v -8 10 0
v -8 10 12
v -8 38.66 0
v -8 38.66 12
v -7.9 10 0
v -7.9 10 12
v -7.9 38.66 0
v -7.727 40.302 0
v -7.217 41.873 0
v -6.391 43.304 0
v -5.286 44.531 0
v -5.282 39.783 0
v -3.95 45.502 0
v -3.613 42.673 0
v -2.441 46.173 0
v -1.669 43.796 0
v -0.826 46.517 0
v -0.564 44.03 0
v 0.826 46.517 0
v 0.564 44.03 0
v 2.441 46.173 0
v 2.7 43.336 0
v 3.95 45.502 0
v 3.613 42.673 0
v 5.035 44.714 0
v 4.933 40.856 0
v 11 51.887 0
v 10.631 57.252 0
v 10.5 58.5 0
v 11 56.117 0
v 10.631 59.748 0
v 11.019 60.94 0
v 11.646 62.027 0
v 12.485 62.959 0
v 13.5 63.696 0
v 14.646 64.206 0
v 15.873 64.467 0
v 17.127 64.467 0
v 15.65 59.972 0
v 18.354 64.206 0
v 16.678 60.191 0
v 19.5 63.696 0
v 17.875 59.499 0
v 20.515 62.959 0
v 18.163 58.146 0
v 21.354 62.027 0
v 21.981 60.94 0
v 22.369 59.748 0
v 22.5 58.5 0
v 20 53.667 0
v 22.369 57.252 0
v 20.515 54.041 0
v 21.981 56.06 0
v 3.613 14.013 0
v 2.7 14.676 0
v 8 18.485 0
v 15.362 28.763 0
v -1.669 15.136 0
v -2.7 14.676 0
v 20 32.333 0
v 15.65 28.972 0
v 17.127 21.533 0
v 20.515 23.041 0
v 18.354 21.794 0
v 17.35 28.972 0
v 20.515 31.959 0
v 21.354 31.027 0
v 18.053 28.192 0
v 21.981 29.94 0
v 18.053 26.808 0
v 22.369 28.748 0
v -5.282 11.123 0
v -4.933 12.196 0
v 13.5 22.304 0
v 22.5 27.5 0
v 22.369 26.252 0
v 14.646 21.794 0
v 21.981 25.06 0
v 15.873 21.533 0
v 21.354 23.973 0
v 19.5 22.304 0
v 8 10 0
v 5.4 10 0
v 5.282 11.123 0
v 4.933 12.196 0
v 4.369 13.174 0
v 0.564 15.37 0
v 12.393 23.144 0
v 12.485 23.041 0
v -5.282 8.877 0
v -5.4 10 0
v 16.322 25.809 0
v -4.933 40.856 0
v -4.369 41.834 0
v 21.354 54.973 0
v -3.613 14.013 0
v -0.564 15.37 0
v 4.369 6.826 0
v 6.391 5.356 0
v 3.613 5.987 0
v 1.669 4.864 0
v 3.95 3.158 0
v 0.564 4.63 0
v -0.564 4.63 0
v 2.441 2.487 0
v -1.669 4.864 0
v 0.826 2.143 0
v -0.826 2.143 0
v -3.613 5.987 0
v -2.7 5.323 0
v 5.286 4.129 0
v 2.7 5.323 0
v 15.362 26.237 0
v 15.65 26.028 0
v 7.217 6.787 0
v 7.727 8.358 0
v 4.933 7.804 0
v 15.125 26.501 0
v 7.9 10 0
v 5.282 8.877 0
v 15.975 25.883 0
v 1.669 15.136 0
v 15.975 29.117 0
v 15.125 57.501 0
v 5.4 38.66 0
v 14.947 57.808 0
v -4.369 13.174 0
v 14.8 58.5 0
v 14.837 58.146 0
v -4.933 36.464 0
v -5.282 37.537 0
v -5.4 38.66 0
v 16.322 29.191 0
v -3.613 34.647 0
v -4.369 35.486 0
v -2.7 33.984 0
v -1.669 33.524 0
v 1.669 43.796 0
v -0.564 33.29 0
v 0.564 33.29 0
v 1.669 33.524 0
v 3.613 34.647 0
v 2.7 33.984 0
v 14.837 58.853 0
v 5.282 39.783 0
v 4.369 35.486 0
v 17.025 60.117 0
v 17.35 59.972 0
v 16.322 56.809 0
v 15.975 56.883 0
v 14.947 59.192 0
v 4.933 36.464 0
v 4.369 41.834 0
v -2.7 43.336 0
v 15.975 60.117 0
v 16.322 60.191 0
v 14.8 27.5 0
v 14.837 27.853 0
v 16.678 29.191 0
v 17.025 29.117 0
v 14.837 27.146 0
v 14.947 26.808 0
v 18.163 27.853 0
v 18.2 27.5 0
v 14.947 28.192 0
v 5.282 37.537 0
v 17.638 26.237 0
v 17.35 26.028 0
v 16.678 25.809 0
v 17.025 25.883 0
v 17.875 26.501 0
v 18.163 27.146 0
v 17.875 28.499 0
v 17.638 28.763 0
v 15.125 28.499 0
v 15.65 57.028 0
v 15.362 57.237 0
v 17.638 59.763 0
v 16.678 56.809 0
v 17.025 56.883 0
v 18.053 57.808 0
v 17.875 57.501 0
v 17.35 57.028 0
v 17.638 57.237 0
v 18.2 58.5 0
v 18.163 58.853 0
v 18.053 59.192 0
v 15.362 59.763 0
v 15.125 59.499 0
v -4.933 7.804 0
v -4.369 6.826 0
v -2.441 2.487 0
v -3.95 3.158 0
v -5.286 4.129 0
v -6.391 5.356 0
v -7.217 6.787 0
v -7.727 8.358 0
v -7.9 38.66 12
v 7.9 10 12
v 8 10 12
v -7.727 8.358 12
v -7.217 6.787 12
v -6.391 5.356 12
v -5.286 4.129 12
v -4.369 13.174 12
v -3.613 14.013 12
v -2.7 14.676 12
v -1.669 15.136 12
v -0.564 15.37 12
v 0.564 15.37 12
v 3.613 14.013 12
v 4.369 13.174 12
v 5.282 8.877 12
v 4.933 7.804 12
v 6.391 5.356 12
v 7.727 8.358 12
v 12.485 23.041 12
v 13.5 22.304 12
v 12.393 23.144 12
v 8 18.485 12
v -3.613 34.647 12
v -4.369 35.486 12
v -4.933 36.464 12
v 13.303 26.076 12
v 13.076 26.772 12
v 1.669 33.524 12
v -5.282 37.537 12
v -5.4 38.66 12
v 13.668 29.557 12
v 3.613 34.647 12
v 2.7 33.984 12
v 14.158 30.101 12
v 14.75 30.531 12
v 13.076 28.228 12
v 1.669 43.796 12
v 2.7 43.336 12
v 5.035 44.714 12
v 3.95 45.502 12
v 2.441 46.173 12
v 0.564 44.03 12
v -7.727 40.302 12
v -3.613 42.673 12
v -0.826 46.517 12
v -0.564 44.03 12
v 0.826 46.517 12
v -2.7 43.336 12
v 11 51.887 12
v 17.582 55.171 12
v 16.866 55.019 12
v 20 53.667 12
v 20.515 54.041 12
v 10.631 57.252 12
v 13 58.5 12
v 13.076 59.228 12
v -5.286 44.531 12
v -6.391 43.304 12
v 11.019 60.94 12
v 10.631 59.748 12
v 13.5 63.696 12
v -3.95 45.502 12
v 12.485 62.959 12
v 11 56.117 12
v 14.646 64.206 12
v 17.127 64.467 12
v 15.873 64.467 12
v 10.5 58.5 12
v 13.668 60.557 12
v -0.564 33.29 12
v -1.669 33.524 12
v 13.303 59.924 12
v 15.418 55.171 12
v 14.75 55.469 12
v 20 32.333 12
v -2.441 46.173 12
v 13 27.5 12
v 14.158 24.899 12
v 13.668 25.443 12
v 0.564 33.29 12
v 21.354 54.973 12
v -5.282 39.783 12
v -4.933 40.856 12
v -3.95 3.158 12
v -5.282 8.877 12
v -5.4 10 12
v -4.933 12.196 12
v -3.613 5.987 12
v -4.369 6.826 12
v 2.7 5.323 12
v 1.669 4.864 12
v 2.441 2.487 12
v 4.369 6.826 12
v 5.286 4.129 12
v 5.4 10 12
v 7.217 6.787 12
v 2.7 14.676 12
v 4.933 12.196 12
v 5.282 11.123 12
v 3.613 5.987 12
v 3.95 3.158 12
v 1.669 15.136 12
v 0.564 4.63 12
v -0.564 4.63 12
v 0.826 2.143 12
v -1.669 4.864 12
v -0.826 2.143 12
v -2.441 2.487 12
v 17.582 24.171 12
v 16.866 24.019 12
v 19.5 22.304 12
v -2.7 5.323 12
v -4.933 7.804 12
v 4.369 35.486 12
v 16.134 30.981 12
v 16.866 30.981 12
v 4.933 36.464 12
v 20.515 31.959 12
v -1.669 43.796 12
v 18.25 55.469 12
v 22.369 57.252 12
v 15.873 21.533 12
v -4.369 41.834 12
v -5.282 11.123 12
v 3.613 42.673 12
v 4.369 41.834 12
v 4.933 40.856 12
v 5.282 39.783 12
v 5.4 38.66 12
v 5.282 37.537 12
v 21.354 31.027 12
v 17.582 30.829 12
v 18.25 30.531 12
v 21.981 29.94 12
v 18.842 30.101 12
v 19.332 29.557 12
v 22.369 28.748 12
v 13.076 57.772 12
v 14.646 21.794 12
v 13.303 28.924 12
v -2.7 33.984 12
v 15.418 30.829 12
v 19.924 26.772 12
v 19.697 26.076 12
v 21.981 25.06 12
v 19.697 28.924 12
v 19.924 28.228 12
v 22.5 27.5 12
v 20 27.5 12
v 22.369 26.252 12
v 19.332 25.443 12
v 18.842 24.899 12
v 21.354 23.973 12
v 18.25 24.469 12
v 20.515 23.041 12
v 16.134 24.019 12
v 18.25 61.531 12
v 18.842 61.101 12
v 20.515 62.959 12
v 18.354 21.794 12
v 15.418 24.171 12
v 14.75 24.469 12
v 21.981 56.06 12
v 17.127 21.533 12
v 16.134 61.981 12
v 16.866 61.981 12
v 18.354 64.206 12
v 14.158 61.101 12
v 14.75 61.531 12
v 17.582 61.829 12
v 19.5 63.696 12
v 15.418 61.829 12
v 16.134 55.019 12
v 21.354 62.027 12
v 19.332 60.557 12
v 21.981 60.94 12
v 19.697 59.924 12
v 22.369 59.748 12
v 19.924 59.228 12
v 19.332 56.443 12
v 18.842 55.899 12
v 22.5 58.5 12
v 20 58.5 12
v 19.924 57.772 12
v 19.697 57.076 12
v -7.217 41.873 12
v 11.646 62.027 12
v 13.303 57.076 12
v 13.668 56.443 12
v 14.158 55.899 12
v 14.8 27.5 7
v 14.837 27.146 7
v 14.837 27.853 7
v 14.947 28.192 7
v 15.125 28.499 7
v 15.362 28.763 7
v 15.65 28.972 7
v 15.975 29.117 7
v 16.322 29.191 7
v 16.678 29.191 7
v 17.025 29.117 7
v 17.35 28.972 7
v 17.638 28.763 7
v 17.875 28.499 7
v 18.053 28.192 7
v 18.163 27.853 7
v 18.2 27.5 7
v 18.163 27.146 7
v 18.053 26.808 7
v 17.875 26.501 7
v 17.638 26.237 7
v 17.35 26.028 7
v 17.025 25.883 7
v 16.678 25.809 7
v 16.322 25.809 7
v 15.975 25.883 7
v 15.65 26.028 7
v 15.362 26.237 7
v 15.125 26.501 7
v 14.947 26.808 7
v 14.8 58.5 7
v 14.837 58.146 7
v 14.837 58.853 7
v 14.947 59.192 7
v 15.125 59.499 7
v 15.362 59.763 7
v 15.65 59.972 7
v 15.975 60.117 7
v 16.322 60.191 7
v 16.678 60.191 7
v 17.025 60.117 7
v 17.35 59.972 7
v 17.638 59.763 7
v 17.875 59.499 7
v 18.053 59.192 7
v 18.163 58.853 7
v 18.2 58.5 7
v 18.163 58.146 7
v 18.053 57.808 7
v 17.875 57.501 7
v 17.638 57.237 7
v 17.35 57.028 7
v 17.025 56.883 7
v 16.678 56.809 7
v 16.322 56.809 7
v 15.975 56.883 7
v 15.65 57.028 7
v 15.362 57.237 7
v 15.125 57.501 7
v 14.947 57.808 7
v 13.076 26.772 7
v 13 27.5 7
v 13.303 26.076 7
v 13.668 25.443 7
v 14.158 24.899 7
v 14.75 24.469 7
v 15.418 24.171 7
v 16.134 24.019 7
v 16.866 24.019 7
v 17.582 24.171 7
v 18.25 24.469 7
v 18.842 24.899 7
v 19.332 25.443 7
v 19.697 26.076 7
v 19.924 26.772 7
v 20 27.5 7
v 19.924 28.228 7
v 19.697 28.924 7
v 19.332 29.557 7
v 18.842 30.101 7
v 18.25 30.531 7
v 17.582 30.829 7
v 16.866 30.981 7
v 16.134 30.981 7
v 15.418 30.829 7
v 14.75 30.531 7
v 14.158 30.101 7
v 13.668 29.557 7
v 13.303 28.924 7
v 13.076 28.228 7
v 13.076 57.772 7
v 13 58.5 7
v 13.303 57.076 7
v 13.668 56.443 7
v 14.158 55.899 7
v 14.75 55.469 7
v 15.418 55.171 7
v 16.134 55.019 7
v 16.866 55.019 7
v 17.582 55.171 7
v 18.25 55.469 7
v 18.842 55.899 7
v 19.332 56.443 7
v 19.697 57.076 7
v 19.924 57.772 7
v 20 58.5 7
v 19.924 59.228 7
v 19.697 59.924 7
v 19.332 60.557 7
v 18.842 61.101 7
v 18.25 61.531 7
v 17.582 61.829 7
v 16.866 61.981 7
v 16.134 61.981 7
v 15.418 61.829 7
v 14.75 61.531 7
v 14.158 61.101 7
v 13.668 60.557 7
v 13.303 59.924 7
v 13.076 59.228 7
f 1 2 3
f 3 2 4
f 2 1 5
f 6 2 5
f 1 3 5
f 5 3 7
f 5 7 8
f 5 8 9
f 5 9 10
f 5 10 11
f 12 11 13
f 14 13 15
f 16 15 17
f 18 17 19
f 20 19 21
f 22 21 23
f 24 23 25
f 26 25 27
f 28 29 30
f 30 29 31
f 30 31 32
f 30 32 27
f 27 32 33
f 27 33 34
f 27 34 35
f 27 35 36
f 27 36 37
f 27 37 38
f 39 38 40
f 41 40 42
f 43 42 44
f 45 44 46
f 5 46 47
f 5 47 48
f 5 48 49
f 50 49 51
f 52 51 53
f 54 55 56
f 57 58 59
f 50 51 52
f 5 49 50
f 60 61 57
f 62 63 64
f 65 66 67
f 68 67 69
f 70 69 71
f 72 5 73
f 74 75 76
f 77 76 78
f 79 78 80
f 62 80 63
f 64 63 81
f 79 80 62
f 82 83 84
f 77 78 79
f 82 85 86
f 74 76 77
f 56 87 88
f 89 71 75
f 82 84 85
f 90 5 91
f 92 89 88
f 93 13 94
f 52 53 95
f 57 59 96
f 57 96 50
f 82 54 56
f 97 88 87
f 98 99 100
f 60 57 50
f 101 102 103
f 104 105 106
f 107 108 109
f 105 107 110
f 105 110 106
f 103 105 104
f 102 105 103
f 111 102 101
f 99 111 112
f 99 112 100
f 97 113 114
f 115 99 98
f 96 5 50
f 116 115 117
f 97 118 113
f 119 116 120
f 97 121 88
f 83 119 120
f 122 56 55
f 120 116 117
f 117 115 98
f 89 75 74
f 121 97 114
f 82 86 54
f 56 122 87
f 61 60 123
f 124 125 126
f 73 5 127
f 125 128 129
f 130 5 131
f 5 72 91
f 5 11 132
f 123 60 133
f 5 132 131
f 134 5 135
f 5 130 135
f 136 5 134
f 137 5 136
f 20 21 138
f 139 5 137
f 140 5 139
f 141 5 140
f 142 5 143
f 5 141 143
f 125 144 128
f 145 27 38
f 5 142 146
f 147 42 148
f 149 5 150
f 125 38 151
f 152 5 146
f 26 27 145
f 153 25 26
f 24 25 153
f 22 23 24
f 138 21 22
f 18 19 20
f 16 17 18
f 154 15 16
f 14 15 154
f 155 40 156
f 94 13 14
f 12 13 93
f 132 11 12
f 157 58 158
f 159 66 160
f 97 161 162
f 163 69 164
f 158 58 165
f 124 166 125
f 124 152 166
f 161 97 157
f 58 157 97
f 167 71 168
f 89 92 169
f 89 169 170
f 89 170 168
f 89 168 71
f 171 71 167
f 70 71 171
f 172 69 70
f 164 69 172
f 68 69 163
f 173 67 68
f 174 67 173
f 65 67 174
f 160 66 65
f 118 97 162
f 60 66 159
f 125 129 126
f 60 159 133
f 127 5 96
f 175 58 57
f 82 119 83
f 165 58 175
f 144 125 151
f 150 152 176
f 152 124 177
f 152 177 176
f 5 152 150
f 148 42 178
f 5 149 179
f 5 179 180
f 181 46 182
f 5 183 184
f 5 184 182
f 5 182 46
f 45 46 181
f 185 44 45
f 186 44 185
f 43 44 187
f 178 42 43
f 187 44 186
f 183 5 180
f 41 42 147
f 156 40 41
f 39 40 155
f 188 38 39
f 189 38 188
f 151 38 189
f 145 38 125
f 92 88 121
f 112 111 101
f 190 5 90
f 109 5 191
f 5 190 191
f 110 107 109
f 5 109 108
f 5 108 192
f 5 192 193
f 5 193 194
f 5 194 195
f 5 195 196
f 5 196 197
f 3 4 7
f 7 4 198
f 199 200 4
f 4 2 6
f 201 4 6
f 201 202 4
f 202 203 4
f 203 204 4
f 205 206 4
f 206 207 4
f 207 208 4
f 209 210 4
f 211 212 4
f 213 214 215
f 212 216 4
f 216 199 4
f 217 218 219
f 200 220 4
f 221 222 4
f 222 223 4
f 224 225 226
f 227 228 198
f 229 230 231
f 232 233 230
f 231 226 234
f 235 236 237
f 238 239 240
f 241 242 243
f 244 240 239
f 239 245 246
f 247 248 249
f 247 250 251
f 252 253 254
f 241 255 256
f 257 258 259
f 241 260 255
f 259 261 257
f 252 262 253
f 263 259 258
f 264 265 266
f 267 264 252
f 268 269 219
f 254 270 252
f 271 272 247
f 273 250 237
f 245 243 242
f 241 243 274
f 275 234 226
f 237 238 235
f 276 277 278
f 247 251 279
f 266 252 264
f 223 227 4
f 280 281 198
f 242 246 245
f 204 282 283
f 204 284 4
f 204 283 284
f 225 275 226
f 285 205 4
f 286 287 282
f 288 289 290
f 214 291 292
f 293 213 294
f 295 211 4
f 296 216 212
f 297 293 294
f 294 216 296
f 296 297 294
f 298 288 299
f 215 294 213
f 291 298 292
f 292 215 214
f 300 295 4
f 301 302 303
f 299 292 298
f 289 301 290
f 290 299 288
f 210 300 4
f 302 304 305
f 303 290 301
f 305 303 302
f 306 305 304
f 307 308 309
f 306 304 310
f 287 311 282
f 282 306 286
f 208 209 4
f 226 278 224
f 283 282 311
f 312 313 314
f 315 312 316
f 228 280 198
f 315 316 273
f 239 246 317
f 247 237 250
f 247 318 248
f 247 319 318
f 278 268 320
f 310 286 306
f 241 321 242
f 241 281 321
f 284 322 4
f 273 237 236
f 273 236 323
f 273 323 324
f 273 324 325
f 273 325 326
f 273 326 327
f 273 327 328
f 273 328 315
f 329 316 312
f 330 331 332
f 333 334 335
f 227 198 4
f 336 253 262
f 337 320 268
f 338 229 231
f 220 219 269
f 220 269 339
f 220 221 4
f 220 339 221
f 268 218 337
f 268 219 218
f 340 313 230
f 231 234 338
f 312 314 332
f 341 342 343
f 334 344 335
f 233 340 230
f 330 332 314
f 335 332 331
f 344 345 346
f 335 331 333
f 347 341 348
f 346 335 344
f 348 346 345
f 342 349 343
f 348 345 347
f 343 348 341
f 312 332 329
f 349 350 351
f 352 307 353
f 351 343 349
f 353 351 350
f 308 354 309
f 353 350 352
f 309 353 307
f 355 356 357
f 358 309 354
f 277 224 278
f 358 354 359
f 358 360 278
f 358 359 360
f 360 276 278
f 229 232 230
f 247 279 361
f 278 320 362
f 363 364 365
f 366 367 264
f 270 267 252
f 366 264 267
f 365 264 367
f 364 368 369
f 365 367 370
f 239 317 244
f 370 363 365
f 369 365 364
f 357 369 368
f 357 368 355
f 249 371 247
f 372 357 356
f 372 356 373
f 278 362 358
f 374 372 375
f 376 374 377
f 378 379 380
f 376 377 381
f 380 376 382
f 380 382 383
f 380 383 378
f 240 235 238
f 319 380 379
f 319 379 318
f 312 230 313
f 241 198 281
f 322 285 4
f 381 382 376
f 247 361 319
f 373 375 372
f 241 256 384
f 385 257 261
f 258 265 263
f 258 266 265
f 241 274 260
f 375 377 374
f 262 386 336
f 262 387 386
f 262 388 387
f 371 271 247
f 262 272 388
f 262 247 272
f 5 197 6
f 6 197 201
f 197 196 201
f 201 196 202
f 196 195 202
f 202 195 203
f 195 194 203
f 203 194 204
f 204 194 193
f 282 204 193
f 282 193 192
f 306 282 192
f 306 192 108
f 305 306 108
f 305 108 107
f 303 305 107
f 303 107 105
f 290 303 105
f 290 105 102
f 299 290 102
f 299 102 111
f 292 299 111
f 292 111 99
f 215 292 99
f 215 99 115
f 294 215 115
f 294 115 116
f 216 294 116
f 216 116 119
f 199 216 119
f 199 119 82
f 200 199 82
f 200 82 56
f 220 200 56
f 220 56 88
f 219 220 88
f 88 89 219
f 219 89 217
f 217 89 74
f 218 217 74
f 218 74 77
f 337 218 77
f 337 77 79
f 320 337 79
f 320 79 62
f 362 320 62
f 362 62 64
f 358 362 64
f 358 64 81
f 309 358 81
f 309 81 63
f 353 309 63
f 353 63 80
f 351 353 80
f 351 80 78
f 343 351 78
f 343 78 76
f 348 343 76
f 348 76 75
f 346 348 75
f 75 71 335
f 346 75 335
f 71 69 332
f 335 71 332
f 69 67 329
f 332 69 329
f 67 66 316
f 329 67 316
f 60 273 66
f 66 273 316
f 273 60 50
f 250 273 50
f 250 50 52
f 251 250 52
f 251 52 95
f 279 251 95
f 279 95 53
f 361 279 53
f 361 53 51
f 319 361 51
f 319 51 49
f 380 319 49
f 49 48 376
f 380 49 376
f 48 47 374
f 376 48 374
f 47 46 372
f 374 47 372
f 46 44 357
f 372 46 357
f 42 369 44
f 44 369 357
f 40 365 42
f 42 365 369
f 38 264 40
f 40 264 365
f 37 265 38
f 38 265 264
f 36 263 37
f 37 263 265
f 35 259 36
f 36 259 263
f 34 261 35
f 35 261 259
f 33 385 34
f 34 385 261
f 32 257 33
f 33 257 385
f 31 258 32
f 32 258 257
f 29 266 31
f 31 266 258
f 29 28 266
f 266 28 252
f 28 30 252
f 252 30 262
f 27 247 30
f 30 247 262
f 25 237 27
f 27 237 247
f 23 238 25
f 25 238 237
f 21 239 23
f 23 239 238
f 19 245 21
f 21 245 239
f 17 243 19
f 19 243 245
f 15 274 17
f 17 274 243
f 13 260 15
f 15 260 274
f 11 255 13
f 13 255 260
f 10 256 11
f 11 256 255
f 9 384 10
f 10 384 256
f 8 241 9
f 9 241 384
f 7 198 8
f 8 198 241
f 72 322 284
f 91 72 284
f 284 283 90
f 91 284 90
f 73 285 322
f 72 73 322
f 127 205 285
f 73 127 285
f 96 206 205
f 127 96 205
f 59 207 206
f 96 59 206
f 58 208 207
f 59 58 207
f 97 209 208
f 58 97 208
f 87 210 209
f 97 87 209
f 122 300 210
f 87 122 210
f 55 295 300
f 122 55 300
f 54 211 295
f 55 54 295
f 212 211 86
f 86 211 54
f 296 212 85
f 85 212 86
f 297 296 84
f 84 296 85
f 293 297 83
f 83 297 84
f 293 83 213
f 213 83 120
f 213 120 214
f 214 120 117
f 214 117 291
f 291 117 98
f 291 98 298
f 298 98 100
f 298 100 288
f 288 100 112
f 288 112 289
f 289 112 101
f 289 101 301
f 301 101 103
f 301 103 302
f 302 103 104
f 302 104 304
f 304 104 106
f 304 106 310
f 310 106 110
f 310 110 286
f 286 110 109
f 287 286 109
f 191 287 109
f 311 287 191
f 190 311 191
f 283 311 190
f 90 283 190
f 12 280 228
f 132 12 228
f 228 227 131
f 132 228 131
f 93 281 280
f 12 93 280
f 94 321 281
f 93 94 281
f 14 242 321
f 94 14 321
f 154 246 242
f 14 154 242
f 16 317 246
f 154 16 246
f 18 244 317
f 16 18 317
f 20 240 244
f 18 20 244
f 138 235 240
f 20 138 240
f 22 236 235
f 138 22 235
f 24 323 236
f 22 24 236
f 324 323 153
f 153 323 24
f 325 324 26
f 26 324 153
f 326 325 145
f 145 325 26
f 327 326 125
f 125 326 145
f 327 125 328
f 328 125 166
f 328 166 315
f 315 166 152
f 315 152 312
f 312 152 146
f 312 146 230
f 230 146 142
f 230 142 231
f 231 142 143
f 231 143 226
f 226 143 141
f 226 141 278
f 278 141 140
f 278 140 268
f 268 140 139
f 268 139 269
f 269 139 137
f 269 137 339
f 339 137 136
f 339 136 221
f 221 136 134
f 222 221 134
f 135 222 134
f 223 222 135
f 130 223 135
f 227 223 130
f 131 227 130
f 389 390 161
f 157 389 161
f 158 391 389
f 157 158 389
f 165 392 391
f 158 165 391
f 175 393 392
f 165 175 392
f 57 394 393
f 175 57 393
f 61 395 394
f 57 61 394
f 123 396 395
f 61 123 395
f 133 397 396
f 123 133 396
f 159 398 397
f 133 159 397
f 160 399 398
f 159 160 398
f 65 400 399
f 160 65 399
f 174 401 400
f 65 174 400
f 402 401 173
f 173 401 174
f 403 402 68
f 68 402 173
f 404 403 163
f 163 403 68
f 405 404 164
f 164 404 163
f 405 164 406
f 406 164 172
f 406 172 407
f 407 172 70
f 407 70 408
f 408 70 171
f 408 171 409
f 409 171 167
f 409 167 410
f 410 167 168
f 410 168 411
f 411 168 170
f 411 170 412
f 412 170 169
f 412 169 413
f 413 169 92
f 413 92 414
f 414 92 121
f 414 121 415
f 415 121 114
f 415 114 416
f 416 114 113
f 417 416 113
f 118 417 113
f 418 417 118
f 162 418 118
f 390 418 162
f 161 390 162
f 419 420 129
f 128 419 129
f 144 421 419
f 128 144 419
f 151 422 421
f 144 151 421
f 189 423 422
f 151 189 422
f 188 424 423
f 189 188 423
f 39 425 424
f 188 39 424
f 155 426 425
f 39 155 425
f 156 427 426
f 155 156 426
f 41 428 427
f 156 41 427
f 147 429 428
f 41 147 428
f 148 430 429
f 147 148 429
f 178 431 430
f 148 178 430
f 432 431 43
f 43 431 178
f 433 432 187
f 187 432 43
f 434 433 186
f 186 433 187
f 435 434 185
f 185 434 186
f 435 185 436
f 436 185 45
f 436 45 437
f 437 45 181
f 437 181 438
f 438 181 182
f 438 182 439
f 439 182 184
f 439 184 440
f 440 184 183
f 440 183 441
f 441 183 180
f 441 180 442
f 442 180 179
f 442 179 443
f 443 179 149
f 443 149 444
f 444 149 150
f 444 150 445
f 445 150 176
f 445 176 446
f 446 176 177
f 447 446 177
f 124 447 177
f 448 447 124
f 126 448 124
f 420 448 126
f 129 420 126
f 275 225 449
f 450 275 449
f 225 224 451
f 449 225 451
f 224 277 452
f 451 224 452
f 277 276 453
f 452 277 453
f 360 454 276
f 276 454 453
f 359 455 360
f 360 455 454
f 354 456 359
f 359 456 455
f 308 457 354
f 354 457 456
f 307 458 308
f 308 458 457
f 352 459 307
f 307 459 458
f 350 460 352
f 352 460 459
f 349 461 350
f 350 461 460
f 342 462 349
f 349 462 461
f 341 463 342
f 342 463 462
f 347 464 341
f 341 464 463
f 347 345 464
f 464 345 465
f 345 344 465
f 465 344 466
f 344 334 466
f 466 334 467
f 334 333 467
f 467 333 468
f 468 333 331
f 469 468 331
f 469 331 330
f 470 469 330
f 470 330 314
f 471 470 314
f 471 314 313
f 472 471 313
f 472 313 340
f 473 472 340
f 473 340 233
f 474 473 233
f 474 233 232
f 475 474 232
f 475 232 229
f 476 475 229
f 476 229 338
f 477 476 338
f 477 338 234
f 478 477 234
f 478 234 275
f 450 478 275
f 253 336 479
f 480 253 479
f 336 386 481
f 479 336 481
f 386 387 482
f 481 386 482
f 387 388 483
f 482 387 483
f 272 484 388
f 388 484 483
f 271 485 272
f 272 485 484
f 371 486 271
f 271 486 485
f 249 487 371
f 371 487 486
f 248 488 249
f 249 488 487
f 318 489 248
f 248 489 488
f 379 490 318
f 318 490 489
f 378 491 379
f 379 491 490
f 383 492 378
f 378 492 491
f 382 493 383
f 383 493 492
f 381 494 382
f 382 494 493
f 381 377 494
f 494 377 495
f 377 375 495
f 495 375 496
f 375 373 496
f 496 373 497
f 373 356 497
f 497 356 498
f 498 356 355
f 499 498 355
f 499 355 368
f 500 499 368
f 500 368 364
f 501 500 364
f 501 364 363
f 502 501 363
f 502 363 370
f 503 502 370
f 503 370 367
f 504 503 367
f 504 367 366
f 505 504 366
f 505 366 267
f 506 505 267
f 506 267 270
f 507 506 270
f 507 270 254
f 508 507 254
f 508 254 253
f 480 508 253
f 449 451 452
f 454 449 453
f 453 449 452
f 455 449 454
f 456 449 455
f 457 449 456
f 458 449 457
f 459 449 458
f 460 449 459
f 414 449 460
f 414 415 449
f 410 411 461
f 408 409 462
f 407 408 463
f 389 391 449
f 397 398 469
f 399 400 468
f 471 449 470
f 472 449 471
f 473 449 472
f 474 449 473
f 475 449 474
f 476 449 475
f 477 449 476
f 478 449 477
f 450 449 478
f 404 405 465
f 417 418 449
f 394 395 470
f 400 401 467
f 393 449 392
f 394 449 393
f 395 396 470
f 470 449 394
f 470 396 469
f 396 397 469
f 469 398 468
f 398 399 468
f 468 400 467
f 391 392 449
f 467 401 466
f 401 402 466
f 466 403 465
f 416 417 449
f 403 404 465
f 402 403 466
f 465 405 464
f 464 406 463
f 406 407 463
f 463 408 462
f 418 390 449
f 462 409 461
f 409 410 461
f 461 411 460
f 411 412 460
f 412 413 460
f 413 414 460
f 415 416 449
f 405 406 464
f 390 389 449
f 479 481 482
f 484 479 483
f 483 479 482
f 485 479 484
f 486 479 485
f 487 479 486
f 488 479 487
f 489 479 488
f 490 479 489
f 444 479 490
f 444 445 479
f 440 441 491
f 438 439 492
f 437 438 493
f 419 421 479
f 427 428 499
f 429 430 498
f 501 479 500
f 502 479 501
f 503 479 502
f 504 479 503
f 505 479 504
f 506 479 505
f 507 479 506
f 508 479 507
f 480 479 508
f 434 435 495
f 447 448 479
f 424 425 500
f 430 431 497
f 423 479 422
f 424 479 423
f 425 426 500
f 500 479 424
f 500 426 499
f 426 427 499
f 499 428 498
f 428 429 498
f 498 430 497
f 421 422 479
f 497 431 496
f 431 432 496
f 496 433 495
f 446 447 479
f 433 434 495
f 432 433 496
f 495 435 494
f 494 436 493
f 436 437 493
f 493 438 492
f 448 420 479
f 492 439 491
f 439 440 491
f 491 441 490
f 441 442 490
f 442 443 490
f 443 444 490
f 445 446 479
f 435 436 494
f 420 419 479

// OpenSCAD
// PRUSA iteration3
// Y motor mount
// GNU GPL v3
// Josef Průša <iam@josefprusa.cz> and contributors
// http://www.reprap.org/wiki/Prusa_Mendel
// http://prusamendel.org

$fn=30;

eps = 0.01;

r_screw_hole = 1.7;
r_screw_hole2 = 3.5;
wall_thickness = 2.5;

r_hole = 5.4;
hole_distance = 2*14.33;
width = 12; //10;

extraOffsetX = 3;
extraOffsetY = 14;


module y_motor_base(){
 // Motor holding part
 translate(v = [29,-21+50,0]){
  translate(v = [-21+4.5+extraOffsetX,extraOffsetY,width/2]) cube(size = [9,31,width], center=true);
  translate(v = [-15.5+extraOffsetX,-15.5+extraOffsetY,0]) cylinder(h = width, r=r_screw_hole2+wall_thickness);
  translate(v = [-15.5+extraOffsetX,+15.5+extraOffsetY,0]) cylinder(h = width, r=r_screw_hole2+wall_thickness);
 }

 // Front holding part
 translate(v = [0,10,0]) cylinder(h = width, r=r_hole+wall_thickness);
 translate(v = [0,10+hole_distance/2,width/2]) cube(size = [16,hole_distance,width], center=true);
 translate(v = [0,10+hole_distance,0]) cylinder(h = width, r=r_hole+wall_thickness);

  // Joins motor holder and rod plate; draw polygon between all middle points of cylinders
  translate([0,0,width/2]) linear_extrude(height=width, center=true, convexity=10, twist=0) polygon([[29-15.5+extraOffsetX,-21+50-15.5+extraOffsetY],[29-15.5+extraOffsetX,-21+50+15.5+extraOffsetY],[0,10+hole_distance],[0,10]]);

}

module y_motor_holes(){
 translate(v = [29,-21+50,0]){
  // Screw head holes
  translate(v = [-15.5+extraOffsetX,-15.5+extraOffsetY,-eps]) cylinder(h = width + 2*eps, r=r_screw_hole);
  translate(v = [-15.5+extraOffsetX,+15.5+extraOffsetY,-eps]) cylinder(h = width + 2*eps, r=r_screw_hole);
  // Screw holes
  translate(v = [-15.5+extraOffsetX,-15.5+extraOffsetY,width-5]) cylinder(h = 7+eps, r=r_screw_hole2);
  translate(v = [-15.5+extraOffsetX,+15.5+extraOffsetY,width-5]) cylinder(h = 7+eps, r=r_screw_hole2);
 }
 translate(v = [0,10,-eps]) cylinder(h = width + 2*eps, r=r_hole);
 translate(v = [0,10+hole_distance,-eps])cylinder(h = width + 2*eps, r=r_hole);
}

// Final part
module y_motor(){
 difference(){
  y_motor_base();
  y_motor_holes();
 }
}

y_motor();
